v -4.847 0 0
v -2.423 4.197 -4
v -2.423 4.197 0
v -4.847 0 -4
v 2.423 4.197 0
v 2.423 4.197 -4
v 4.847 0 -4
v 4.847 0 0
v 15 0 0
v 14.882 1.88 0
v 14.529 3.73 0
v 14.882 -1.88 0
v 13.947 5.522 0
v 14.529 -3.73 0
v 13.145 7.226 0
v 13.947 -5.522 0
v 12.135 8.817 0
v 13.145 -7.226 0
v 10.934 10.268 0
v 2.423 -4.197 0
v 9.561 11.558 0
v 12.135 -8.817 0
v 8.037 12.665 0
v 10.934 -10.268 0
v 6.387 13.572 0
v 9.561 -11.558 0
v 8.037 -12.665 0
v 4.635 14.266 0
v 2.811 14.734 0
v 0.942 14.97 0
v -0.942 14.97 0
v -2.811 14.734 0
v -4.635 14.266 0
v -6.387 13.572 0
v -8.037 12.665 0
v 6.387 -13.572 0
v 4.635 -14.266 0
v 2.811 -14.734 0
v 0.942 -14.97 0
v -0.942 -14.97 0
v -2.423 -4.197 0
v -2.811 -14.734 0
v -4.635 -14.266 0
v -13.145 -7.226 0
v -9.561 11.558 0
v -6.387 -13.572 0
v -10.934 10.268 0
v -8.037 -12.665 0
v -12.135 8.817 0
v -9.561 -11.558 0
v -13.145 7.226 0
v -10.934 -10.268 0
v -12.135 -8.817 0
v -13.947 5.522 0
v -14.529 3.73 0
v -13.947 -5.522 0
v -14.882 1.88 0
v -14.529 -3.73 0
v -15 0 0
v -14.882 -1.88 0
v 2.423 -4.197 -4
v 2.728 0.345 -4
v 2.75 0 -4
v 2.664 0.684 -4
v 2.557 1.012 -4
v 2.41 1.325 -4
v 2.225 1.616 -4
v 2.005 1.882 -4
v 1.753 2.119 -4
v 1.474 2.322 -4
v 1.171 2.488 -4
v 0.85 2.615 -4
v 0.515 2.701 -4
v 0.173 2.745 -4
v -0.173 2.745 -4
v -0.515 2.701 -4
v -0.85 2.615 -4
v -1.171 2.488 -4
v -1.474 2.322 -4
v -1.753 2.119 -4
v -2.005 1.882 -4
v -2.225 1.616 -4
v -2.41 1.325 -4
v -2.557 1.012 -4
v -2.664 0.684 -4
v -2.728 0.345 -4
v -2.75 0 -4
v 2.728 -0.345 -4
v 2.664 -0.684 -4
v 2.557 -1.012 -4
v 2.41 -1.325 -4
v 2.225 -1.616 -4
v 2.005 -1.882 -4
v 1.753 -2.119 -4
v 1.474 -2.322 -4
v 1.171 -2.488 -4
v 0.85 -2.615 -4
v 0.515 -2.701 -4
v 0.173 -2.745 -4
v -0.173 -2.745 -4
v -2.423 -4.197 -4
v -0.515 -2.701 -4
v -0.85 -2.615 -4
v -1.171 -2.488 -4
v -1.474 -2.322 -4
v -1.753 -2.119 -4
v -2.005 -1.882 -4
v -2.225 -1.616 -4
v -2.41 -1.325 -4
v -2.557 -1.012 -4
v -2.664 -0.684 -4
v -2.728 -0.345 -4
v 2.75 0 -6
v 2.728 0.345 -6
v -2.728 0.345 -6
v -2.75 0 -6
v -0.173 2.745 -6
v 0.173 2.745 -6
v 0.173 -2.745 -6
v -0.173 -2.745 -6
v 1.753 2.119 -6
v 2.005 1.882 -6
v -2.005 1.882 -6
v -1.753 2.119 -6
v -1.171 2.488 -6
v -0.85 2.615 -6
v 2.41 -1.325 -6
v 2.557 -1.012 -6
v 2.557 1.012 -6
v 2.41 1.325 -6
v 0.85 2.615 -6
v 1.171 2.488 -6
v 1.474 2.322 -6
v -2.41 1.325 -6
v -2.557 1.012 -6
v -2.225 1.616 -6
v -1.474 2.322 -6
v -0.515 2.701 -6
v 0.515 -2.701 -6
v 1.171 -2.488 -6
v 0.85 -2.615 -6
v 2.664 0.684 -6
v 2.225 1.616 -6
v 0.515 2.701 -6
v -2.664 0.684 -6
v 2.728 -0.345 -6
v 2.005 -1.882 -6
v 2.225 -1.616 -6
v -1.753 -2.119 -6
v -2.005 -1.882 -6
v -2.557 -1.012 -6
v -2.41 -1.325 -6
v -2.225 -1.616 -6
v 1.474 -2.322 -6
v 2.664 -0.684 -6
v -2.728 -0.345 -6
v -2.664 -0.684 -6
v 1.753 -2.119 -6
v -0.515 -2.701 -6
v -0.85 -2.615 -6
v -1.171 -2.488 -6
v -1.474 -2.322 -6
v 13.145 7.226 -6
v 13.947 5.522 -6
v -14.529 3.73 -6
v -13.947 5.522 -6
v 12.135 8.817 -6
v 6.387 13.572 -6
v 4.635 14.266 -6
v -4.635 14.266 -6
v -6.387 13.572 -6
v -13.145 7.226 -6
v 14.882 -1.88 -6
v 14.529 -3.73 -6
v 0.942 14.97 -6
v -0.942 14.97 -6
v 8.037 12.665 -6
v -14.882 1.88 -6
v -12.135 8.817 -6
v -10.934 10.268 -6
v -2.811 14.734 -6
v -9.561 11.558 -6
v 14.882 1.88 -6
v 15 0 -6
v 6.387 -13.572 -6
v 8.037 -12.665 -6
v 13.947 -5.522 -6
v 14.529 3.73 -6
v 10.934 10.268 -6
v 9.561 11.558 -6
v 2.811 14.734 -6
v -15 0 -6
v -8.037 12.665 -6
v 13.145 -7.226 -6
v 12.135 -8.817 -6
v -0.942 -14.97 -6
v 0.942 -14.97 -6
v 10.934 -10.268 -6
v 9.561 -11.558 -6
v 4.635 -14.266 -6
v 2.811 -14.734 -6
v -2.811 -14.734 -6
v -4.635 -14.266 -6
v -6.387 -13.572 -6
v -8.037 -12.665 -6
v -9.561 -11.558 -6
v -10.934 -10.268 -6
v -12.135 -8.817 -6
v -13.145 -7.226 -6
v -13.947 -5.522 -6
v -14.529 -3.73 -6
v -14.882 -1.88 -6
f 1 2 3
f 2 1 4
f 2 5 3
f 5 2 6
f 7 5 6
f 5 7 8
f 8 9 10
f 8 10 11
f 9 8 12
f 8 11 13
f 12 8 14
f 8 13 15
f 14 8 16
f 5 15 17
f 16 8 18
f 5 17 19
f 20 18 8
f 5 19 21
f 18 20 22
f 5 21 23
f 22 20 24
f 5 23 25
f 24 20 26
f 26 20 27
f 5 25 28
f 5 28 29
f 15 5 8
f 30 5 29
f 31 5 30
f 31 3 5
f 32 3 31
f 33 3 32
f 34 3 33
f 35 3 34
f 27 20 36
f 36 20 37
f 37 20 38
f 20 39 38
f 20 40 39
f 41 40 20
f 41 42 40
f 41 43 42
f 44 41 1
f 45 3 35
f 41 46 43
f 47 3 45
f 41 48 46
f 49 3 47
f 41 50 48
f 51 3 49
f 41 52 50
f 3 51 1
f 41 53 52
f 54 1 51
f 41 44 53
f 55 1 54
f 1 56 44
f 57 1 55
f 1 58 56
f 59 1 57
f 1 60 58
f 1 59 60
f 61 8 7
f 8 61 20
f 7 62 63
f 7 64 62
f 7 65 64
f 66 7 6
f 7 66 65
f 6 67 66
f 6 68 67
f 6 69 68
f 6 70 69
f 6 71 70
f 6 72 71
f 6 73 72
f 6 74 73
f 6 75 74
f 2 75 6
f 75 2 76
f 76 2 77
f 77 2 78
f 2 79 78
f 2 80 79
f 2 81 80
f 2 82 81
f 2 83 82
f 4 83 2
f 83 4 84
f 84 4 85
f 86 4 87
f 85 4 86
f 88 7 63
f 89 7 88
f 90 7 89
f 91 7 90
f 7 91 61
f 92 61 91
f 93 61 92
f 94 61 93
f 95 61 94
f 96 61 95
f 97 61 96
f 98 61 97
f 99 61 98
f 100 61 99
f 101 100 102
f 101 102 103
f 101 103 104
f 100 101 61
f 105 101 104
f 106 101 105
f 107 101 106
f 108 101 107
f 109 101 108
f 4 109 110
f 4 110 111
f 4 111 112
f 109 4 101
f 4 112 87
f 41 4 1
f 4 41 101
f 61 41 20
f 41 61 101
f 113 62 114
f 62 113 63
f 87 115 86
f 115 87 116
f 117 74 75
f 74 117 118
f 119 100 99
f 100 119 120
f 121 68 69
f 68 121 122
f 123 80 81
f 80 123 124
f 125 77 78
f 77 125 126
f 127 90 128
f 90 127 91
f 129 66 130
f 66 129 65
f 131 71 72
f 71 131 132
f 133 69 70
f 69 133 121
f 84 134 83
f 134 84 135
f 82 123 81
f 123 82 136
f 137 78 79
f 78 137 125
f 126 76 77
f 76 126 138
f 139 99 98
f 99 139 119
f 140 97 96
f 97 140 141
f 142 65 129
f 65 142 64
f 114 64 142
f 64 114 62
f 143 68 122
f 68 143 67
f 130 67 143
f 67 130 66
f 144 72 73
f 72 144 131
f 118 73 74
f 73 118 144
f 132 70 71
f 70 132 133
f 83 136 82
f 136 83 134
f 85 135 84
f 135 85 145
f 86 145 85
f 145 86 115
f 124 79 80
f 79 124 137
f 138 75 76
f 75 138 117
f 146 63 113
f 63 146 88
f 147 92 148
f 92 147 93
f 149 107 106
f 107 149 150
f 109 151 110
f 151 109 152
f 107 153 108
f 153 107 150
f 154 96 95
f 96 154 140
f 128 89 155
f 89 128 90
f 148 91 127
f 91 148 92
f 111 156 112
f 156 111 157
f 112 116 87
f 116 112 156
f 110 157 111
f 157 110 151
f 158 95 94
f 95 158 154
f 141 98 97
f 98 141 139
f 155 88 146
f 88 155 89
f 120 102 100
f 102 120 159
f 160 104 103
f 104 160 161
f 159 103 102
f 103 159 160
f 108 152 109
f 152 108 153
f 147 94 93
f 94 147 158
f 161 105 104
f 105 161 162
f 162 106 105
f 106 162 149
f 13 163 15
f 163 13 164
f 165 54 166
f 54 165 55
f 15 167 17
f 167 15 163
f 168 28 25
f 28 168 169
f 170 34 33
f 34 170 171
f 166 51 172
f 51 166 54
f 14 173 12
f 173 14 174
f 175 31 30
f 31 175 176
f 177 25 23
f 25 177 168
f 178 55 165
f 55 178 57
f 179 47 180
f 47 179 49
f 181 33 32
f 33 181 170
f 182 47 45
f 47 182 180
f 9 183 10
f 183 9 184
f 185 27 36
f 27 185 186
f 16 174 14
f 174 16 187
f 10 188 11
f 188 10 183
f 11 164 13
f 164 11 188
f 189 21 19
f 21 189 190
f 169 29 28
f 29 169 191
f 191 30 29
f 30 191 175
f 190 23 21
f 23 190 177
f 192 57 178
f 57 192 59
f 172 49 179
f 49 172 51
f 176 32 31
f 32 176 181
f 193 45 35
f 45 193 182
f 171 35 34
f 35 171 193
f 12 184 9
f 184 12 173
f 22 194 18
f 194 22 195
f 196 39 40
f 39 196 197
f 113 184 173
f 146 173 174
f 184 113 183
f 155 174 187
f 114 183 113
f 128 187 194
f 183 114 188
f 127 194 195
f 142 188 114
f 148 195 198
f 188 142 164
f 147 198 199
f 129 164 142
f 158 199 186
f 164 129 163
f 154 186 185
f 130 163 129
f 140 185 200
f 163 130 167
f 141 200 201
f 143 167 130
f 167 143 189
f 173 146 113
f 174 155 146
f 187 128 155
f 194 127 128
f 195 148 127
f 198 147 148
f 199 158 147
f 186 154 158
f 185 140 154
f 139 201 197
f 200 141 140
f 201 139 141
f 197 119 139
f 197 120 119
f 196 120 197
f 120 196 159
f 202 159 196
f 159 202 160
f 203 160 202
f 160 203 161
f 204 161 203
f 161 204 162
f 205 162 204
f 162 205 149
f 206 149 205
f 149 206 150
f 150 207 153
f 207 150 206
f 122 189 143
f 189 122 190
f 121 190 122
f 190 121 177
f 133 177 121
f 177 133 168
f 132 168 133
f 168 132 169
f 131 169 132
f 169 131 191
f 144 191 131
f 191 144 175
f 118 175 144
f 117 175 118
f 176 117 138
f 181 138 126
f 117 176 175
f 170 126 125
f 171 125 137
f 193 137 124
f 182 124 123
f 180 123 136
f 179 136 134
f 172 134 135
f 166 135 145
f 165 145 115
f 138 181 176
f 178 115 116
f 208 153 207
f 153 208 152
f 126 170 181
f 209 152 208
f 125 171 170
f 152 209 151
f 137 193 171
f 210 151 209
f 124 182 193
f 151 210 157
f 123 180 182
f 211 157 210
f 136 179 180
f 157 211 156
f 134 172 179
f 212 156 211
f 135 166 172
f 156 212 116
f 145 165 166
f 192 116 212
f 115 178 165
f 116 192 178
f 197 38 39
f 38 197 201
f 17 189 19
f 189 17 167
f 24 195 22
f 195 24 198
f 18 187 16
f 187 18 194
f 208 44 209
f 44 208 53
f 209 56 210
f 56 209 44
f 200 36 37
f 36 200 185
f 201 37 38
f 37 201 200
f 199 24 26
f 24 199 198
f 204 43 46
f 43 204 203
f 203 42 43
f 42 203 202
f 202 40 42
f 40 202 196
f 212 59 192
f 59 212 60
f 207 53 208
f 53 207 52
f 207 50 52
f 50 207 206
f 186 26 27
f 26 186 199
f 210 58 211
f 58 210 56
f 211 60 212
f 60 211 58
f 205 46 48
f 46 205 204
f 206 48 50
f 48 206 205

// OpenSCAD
$fn = 50;


difference() {
	union() {
		translate(v = [0, 0, -6.0000000000]) {
			cylinder(h = 6.0000000000, r = 15.0000000000);
		}
	}
	union() {
		translate(v = [0, 0, 0]) {
			rotate(a = [0, 0, 0]) {
				difference() {
					union() {
						translate(v = [0, 0, -4]) {
							linear_extrude(height = 4) {
								polygon(points = [[4.8468000000, 0.0000000000], [2.4234000000, 4.1974519271], [-2.4234000000, 4.1974519271], [-4.8468000000, 0.0000000000], [-2.4234000000, -4.1974519271], [2.4234000000, -4.1974519271]]);
							}
						}
					}
					union();
				}
			}
		}
		#translate(v = [0, 0, -100.0000000000]) {
			cylinder(h = 200, r = 2.7500000000);
		}
	}
}
